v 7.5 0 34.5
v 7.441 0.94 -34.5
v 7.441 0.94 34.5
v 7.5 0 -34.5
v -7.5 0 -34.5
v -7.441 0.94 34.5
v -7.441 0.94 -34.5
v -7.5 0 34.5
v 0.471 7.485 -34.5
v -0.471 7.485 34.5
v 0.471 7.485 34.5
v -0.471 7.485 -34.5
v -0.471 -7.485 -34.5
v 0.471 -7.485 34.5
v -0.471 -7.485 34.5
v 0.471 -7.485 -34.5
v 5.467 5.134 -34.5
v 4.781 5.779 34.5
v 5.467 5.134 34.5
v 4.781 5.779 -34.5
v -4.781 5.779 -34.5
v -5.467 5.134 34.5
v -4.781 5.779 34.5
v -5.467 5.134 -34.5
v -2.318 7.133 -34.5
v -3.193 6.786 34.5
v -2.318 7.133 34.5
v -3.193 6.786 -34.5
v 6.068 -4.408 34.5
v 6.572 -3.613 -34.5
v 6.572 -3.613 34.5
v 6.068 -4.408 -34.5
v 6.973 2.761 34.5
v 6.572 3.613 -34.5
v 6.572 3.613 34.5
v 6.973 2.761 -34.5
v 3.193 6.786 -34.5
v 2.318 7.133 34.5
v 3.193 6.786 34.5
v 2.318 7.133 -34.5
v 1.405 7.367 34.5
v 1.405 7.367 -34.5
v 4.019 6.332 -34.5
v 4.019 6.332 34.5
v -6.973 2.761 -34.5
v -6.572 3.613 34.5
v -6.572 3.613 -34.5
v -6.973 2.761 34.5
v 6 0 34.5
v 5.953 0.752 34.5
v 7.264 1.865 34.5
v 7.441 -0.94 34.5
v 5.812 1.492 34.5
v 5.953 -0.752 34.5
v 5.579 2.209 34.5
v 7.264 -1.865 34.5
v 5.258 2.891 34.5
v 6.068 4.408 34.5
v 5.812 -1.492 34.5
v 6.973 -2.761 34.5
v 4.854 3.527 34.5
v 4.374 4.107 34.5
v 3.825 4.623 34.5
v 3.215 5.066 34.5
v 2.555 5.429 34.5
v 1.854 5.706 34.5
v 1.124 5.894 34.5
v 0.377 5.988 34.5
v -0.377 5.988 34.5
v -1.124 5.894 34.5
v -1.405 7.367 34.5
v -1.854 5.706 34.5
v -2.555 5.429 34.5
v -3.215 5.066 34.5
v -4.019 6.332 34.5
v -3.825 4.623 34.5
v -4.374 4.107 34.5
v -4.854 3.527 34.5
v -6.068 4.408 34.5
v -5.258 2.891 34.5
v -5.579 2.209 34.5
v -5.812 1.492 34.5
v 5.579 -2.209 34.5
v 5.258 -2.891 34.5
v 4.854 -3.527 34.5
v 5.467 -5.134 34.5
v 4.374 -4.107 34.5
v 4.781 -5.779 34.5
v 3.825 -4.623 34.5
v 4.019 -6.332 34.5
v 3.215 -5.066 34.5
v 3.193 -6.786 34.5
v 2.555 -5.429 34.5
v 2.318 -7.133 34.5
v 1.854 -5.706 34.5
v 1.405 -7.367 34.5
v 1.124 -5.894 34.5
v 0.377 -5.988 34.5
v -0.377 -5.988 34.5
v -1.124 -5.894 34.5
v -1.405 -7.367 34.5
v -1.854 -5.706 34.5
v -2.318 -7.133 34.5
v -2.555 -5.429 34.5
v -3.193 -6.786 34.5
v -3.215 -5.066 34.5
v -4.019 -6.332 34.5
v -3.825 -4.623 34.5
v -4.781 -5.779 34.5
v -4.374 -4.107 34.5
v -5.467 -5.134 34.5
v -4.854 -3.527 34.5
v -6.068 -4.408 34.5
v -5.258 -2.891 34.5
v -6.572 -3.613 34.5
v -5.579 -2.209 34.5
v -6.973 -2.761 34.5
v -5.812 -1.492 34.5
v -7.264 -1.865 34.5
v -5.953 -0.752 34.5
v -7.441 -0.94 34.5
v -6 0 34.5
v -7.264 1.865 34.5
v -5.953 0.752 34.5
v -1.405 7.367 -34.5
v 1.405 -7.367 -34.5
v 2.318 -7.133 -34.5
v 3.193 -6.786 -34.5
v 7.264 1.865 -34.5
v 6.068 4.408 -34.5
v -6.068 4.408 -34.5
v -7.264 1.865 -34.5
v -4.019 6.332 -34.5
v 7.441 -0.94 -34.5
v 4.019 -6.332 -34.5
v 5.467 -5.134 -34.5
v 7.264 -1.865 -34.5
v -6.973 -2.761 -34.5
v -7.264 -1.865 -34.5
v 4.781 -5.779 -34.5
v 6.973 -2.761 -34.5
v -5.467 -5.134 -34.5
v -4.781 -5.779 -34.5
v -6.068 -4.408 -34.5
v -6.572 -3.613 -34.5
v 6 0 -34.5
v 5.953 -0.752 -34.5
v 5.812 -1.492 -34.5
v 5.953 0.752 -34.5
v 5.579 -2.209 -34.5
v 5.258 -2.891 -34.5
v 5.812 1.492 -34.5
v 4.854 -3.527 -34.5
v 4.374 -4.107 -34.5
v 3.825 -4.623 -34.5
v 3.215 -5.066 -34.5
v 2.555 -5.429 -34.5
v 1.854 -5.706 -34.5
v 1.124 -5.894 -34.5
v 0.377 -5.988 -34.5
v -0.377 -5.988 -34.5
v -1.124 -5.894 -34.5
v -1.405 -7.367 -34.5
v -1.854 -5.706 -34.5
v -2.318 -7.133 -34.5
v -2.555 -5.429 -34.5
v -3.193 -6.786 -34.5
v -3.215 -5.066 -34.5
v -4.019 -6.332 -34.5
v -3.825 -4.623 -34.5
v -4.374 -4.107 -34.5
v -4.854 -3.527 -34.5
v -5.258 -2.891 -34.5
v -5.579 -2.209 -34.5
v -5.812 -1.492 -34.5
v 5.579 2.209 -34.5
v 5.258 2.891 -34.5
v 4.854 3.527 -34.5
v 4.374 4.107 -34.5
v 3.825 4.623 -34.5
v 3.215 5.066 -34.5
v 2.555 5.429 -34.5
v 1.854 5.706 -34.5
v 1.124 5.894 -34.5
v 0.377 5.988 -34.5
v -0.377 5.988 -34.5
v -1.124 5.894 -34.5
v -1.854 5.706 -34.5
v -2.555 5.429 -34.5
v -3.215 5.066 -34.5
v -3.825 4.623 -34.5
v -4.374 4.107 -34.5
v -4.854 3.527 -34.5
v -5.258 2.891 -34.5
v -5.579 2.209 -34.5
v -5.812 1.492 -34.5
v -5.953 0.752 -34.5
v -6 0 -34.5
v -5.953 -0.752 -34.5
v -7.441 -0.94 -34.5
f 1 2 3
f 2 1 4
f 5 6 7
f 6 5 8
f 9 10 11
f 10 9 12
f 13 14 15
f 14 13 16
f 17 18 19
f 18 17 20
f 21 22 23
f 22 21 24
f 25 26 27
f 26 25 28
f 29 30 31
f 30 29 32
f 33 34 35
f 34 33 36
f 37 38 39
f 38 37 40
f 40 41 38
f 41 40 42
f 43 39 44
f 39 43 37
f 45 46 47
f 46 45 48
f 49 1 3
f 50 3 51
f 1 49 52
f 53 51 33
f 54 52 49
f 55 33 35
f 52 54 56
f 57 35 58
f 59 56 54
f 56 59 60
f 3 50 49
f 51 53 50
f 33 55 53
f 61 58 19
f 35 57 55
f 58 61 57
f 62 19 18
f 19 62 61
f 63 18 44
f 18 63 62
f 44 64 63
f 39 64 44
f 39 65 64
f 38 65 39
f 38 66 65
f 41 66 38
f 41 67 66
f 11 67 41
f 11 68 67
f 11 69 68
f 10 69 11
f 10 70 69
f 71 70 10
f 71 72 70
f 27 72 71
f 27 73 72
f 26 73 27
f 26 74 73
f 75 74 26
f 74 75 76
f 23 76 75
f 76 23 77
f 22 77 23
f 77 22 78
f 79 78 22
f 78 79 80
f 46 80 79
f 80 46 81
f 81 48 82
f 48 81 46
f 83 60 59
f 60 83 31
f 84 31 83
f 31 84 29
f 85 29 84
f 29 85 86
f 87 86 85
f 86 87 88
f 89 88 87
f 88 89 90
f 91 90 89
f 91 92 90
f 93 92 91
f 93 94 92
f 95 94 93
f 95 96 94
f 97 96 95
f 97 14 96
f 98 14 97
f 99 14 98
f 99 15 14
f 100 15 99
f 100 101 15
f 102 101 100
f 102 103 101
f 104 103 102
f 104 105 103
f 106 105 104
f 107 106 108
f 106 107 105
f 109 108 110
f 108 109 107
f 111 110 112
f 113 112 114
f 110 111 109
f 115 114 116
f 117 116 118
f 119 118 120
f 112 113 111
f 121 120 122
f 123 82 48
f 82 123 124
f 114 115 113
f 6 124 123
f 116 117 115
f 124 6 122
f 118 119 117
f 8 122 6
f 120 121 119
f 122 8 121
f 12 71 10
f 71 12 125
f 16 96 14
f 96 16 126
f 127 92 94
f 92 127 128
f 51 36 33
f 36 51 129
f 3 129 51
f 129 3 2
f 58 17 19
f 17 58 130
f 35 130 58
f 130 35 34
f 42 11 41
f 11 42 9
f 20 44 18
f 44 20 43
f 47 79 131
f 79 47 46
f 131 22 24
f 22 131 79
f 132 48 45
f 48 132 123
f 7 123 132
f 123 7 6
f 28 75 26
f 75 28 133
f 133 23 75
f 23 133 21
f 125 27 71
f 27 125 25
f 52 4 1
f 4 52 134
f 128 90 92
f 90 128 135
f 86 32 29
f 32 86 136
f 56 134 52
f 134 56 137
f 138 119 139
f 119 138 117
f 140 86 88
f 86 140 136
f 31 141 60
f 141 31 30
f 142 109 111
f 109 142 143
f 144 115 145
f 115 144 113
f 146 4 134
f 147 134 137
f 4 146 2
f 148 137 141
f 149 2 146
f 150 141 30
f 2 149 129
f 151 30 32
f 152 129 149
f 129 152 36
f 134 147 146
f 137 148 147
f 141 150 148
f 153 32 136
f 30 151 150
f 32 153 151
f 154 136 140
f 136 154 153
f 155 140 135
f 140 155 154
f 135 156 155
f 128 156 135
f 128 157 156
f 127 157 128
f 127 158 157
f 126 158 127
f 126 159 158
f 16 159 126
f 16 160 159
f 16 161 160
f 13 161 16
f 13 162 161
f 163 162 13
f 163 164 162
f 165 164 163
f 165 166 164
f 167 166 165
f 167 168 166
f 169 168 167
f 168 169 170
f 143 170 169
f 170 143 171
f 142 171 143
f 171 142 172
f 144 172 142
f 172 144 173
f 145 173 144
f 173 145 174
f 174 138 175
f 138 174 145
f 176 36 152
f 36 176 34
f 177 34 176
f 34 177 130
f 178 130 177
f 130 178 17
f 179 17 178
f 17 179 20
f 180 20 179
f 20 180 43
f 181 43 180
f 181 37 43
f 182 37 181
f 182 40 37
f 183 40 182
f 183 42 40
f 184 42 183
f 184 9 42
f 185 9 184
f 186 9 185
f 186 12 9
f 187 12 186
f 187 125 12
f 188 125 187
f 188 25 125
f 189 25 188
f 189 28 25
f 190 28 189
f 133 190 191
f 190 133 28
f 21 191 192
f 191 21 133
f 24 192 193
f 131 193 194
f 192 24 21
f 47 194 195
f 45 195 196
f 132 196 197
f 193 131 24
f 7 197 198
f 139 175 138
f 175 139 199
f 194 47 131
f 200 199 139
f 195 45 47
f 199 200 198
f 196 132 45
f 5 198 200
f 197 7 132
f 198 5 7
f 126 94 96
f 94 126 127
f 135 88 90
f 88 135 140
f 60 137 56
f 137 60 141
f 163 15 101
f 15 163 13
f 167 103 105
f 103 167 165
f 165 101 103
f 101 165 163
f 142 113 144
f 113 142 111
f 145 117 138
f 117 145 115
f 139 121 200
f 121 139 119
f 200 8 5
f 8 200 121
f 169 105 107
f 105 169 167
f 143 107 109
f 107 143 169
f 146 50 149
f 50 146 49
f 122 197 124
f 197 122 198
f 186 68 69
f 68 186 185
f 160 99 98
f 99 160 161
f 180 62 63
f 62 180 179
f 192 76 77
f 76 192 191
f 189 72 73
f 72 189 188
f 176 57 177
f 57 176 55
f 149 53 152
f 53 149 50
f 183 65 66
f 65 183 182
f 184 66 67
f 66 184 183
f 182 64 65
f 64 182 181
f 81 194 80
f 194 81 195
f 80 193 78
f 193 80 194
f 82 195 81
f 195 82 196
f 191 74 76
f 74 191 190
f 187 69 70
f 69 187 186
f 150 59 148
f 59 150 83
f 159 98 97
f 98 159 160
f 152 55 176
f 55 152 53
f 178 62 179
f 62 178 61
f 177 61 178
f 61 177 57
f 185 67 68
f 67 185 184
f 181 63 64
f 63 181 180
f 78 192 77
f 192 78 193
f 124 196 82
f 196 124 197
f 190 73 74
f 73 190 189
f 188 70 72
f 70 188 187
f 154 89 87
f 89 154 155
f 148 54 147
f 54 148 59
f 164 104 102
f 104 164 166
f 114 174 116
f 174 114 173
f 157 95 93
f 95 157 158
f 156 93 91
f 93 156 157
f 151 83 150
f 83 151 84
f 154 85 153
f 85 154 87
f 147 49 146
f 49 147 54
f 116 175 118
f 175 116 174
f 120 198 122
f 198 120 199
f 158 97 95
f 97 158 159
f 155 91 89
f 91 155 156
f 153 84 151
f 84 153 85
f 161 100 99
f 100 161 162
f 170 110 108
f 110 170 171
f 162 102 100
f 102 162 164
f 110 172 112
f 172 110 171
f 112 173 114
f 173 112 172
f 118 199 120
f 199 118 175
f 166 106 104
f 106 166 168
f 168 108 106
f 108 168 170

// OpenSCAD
$fn = 50;


difference() {
	union() {
		translate(v = [0, 0, -34.5000000000]) {
			cylinder(h = 69, r = 7.5000000000);
		}
	}
	union() {
		translate(v = [0, 0, -100.0000000000]) {
			cylinder(h = 200, r = 6);
		}
	}
}
